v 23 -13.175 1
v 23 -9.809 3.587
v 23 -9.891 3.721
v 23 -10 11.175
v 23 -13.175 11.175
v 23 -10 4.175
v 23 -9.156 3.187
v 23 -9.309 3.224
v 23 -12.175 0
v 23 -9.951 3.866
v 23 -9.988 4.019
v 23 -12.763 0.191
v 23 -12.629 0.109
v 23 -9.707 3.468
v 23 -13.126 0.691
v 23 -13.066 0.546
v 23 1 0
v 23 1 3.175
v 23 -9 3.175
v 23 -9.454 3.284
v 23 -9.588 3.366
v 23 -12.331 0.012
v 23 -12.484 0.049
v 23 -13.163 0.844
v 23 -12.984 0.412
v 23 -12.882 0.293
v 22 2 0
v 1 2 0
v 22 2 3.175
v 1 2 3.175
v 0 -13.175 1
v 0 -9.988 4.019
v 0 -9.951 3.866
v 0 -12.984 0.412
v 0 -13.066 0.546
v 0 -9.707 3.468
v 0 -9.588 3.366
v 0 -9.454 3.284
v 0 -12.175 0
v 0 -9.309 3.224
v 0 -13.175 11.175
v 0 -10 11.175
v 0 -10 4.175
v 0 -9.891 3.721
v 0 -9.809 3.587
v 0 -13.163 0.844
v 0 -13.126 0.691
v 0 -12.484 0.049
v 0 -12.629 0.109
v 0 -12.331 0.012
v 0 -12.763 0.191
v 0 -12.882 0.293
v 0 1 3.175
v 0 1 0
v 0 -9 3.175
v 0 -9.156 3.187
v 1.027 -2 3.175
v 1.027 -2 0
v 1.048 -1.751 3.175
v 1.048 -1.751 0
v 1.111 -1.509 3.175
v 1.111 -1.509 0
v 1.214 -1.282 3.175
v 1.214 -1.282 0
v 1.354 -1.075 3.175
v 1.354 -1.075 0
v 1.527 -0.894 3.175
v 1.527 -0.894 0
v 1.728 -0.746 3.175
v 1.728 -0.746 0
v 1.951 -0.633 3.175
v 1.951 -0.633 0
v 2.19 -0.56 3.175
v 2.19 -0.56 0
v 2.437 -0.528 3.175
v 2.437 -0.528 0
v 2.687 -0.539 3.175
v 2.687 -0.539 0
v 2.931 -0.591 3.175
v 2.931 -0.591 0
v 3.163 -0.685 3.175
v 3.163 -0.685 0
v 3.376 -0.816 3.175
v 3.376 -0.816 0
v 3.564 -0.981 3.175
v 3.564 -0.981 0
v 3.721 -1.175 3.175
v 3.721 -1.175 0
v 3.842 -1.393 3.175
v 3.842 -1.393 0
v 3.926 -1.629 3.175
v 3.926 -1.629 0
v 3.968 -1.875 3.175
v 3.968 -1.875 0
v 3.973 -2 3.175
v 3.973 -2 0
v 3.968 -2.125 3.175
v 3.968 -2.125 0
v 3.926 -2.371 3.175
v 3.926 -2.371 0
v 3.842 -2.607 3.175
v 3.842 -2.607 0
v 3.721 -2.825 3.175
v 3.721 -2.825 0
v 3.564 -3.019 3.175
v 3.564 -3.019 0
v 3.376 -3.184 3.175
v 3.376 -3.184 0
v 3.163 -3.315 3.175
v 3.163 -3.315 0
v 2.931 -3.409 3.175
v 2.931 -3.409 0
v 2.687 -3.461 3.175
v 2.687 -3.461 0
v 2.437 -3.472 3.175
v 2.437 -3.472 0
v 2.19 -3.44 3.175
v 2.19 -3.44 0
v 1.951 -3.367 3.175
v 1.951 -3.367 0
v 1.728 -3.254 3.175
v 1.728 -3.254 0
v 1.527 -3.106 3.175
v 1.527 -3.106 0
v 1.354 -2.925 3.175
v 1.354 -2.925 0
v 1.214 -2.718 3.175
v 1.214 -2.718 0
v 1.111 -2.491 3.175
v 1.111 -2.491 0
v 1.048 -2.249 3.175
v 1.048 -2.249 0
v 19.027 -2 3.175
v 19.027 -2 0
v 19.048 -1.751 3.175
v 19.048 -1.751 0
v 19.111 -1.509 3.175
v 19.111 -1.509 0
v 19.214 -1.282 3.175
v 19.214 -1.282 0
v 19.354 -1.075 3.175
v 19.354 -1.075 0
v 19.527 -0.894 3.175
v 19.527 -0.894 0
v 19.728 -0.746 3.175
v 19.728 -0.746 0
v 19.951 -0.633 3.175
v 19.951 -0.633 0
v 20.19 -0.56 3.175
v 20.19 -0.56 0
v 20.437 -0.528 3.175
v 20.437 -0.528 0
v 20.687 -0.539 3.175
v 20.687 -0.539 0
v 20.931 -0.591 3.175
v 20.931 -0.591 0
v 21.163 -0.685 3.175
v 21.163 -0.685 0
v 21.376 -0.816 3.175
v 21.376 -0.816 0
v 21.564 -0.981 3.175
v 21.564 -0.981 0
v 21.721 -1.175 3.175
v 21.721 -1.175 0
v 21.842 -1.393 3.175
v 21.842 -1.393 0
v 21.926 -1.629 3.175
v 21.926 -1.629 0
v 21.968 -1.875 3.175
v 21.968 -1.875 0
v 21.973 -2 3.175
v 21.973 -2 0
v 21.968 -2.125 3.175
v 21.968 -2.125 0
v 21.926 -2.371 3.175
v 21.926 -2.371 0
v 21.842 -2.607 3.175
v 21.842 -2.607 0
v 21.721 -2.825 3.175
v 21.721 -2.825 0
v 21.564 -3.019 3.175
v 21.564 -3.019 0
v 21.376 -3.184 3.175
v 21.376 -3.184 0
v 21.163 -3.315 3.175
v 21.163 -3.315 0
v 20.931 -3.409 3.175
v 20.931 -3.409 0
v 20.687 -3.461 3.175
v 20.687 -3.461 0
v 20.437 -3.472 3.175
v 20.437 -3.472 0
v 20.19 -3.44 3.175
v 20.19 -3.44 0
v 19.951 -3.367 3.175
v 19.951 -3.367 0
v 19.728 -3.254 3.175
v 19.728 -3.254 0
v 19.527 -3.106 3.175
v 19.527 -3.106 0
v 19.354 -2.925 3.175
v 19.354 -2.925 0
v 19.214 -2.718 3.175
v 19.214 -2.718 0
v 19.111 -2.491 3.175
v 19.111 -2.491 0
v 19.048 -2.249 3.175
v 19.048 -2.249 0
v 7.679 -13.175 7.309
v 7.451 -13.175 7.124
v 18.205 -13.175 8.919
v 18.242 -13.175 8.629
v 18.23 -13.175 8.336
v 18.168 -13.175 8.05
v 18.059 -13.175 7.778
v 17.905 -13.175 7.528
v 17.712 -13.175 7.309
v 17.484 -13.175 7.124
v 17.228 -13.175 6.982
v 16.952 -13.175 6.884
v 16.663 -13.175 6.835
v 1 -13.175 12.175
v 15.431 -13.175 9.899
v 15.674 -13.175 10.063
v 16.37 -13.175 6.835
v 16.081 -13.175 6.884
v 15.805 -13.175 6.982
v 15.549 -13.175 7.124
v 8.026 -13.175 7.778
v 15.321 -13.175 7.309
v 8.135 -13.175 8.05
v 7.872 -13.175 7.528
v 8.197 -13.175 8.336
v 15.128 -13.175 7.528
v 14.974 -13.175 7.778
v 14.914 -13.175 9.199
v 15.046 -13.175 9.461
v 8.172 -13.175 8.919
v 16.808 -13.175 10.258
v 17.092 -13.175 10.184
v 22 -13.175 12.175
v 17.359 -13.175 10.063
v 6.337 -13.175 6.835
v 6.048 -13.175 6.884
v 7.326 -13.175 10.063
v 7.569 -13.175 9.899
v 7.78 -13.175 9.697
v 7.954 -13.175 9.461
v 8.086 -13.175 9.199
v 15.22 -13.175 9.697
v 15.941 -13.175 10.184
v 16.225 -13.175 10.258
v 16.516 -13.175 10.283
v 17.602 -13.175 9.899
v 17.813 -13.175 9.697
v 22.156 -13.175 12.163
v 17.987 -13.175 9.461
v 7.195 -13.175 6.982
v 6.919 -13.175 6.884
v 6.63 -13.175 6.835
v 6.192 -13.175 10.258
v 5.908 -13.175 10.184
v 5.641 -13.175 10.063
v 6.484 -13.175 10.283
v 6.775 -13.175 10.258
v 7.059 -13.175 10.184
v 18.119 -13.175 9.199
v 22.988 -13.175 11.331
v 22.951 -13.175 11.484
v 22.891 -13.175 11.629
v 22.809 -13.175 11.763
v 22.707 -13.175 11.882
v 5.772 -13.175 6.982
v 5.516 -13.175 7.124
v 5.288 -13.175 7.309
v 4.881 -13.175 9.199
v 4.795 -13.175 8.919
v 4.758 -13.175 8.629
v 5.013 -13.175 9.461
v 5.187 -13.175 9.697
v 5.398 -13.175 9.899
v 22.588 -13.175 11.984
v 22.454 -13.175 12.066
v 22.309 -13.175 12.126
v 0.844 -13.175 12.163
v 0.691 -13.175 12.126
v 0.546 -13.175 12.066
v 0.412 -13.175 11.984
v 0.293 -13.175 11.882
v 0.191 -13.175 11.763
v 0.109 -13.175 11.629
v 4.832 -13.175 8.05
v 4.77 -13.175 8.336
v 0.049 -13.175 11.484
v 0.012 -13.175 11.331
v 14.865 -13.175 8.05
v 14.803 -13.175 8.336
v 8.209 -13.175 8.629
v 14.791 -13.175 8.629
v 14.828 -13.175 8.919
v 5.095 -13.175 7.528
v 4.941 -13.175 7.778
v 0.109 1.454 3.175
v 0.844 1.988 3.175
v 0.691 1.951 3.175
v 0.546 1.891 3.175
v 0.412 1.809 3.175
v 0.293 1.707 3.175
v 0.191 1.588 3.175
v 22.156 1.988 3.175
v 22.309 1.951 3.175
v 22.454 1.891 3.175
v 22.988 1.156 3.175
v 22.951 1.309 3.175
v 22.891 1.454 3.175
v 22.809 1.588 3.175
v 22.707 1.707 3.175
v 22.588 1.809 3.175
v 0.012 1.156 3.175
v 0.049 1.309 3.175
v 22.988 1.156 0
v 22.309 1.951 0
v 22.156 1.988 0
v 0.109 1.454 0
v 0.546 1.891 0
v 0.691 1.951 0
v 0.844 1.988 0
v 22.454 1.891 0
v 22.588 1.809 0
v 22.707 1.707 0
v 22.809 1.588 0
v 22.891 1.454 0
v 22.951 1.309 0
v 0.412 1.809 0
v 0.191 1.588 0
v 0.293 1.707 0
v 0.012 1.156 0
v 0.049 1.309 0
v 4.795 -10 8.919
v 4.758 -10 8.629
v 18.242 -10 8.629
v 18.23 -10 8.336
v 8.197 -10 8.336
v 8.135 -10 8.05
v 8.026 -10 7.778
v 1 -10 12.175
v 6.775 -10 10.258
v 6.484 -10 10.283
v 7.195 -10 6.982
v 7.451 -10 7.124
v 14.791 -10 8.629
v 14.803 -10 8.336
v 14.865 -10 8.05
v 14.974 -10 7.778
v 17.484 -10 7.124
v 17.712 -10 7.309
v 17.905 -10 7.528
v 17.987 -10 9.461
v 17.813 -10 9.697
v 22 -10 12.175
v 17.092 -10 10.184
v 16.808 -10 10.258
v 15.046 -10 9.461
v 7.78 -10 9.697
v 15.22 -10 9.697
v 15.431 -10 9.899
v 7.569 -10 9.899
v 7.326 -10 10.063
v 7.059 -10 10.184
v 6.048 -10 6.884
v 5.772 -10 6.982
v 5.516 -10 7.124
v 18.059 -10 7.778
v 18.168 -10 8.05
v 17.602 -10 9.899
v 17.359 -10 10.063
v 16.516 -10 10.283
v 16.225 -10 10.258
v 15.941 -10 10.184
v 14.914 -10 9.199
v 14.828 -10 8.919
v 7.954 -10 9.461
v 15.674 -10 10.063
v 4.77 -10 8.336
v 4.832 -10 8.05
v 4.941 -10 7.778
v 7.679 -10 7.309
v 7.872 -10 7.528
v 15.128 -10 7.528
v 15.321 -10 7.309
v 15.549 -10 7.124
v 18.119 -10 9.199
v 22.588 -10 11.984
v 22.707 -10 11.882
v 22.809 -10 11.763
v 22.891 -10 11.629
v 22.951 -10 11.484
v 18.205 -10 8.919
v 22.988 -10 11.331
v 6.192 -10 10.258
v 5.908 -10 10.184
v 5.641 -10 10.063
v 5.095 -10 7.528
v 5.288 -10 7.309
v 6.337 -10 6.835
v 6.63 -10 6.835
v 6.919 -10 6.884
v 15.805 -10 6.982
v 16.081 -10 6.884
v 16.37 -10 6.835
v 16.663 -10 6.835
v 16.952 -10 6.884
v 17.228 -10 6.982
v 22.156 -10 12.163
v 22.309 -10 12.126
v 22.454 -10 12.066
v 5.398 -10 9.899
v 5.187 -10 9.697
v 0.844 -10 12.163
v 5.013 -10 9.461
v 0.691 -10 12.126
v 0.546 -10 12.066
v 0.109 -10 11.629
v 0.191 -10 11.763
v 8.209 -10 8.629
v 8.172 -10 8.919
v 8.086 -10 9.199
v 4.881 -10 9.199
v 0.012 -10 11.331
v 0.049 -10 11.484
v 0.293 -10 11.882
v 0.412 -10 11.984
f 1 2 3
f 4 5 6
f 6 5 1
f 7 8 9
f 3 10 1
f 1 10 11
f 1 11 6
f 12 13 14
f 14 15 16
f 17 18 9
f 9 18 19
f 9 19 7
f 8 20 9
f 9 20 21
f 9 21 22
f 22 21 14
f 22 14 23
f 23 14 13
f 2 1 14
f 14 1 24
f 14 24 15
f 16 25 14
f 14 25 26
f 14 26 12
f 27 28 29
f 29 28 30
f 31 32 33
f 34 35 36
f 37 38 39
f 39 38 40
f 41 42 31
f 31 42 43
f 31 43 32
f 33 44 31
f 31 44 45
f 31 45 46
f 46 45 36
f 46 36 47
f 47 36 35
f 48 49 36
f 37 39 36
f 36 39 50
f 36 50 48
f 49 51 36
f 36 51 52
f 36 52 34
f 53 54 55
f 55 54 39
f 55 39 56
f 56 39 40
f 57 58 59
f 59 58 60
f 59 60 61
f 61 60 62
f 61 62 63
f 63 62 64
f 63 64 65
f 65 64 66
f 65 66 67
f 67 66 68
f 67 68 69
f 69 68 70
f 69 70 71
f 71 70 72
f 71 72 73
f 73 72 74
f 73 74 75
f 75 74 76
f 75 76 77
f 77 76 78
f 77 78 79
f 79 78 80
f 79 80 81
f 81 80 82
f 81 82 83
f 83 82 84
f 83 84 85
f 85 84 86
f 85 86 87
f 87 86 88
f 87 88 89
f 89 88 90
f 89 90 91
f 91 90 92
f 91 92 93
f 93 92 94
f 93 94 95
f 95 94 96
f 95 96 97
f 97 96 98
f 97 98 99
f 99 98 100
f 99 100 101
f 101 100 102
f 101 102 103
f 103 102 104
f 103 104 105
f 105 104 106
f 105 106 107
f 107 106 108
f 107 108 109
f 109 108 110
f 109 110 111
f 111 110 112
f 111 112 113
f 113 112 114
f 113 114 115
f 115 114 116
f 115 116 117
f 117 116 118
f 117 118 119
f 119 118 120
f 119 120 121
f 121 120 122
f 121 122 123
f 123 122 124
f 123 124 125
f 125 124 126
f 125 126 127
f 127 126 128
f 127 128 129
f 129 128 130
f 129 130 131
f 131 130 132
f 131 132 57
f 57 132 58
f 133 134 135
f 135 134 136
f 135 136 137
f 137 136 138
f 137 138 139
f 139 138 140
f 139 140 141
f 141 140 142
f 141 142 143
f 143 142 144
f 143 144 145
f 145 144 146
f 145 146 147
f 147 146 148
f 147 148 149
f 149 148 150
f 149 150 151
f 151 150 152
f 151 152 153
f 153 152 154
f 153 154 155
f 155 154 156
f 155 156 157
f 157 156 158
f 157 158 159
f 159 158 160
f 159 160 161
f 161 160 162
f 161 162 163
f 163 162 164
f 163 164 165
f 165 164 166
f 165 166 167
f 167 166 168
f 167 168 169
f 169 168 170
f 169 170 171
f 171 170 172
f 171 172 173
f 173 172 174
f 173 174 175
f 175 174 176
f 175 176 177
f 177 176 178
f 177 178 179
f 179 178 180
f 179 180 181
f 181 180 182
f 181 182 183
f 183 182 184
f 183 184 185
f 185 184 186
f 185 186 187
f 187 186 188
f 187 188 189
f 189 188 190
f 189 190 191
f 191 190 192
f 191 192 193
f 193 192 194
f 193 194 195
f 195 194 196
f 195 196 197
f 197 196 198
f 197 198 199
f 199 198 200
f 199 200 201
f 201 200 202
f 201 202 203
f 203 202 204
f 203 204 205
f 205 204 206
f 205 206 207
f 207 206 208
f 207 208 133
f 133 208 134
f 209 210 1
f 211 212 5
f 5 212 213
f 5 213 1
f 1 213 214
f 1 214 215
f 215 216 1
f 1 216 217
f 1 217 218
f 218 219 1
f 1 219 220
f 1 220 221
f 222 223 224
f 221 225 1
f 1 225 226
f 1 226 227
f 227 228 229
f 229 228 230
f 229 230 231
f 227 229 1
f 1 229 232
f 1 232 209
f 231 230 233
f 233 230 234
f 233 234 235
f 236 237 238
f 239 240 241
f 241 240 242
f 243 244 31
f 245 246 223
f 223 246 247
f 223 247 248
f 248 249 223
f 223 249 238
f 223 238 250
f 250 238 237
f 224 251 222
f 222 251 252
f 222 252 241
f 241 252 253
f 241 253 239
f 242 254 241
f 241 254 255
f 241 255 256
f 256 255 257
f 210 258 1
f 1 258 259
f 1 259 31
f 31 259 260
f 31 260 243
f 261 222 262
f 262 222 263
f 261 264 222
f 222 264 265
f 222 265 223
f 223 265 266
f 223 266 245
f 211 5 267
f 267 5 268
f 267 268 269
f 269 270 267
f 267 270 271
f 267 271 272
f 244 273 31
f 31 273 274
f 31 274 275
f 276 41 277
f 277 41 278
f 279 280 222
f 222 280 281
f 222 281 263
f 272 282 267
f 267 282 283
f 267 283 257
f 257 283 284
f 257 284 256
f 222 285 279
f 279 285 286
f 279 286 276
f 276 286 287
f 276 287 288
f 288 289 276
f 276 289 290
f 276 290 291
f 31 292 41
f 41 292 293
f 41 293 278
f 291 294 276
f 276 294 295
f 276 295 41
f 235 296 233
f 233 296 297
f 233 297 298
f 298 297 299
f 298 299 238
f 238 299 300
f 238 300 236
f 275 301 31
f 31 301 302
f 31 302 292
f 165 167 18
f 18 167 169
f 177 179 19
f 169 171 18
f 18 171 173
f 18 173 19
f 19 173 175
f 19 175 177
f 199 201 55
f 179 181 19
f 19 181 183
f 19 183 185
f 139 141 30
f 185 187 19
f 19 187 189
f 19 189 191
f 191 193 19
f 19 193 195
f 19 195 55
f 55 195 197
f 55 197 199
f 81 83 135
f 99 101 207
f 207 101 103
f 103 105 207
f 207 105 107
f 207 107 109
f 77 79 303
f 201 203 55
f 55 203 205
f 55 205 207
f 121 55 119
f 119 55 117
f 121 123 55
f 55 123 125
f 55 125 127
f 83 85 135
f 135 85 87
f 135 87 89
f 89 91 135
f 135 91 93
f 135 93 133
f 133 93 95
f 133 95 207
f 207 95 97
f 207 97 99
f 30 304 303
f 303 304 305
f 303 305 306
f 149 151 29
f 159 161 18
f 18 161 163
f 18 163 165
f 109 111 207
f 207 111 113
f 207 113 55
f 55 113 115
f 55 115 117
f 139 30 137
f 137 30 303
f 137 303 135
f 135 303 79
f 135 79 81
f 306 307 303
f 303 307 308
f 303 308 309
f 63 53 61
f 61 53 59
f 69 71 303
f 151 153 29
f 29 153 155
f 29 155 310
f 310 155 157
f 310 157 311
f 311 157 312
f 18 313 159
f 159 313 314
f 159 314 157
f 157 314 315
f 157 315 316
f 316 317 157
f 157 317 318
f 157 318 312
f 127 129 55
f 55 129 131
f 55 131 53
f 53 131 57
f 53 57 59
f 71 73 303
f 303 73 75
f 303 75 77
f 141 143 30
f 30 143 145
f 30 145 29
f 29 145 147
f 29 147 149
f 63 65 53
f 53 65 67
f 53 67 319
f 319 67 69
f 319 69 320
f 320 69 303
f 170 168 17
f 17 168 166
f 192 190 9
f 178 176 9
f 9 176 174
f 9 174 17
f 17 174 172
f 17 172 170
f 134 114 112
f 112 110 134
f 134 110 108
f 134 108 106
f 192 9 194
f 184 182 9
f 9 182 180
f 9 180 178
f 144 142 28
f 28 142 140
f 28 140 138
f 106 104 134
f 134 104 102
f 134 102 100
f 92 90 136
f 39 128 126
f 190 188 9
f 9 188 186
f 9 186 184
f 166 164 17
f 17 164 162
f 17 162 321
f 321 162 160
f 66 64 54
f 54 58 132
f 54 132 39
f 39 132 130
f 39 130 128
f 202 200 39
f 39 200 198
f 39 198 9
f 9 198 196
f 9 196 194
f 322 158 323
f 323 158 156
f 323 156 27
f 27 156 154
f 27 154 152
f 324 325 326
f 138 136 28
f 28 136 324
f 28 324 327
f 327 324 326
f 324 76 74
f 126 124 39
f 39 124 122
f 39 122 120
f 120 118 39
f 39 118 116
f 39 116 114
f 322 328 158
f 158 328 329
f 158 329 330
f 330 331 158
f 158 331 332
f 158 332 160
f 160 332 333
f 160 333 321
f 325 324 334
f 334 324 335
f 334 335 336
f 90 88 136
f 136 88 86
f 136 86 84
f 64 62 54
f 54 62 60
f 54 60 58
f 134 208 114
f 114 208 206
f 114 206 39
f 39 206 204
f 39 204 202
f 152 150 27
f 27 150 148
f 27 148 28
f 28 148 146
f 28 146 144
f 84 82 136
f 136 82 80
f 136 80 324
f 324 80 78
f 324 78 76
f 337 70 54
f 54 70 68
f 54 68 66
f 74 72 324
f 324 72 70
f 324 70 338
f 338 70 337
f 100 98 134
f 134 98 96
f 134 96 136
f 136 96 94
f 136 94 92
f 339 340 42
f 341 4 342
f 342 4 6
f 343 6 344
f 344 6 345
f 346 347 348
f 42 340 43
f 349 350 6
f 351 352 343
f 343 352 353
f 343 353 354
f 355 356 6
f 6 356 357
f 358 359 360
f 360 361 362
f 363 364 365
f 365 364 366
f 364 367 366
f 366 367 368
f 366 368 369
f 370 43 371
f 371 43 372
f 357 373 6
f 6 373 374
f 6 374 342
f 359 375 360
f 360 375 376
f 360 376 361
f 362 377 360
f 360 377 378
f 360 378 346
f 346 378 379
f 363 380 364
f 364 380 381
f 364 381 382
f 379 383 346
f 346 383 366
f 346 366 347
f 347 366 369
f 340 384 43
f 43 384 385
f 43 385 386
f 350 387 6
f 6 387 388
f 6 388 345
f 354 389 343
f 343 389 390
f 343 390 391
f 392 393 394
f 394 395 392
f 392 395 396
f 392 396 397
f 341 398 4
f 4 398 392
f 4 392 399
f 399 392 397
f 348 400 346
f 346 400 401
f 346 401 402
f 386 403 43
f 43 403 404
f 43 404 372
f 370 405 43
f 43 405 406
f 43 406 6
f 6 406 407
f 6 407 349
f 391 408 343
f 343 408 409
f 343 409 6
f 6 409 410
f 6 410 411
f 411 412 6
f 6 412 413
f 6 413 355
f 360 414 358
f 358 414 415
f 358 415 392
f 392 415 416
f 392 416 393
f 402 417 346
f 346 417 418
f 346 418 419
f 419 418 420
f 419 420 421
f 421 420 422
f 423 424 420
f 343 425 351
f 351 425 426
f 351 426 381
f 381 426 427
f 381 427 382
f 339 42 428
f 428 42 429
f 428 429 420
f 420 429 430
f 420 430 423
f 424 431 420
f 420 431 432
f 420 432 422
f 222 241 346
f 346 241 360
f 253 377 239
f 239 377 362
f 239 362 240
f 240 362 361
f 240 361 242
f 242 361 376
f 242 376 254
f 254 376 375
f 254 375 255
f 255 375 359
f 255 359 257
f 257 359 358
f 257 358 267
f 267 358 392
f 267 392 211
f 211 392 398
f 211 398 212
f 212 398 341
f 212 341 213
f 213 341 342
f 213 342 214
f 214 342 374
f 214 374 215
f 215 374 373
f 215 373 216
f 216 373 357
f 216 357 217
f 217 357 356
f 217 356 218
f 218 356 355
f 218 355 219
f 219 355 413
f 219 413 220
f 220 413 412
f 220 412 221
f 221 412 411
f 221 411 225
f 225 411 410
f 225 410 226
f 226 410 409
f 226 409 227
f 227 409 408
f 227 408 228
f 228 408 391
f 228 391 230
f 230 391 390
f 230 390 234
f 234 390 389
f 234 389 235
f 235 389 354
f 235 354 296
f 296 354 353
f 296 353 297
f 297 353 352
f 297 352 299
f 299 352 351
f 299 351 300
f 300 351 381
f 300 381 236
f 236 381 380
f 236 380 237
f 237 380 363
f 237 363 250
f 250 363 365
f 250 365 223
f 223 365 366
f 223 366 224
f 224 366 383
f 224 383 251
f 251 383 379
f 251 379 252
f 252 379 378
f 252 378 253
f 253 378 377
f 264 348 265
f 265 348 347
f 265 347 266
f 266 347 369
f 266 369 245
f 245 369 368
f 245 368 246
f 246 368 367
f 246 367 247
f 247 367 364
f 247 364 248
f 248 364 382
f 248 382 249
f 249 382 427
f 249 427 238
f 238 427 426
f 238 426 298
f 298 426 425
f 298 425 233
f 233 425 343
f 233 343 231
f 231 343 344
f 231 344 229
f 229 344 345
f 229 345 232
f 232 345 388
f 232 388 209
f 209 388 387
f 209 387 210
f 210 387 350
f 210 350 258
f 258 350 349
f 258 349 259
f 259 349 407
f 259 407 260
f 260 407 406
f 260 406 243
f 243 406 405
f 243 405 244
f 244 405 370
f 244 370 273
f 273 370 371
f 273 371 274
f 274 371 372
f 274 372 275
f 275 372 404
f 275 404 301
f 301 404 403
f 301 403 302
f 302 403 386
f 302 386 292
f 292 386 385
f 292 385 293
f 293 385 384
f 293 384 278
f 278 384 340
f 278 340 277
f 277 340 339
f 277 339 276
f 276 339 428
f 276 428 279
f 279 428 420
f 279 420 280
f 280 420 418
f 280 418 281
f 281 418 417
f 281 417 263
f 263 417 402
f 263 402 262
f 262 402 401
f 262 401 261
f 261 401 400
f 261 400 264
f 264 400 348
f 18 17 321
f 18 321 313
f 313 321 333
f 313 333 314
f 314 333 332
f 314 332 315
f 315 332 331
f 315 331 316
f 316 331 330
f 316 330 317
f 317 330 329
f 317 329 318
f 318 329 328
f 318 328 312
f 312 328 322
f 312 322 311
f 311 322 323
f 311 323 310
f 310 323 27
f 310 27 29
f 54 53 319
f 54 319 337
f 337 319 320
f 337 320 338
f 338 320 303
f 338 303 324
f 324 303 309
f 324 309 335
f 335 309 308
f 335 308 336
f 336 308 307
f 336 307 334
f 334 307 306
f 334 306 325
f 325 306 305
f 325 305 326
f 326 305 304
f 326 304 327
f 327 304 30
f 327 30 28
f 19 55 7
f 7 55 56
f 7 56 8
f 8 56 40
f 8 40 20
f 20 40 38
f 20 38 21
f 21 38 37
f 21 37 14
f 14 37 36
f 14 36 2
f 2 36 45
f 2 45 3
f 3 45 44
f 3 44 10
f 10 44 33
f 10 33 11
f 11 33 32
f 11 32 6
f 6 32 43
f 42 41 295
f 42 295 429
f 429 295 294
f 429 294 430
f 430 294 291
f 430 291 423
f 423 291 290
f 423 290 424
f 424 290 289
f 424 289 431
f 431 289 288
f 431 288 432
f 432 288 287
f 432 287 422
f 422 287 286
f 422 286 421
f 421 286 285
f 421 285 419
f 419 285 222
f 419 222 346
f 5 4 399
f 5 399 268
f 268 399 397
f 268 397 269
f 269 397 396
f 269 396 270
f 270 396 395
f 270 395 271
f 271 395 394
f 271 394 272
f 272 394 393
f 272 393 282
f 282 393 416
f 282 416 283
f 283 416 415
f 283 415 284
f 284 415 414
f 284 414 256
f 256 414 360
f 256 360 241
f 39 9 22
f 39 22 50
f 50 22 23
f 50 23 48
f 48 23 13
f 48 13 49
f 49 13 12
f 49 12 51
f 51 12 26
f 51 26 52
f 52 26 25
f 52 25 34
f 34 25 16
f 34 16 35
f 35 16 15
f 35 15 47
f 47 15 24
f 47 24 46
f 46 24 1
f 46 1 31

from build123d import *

# Parameters (mm, degrees)
SKETCH1_W             = 23
SKETCH1_H             = 10
SKETCH1_R             = 1.4732
SKETCH1_H_2           = 3.175
SKETCH1_H_3           = 2
BOSS_EXTRUDE1_DEPTH   = 3.175
BOSS_EXTRUDE2_START   = 3.175
SKETCH1_3_W           = 23
SKETCH1_3_H           = 3.175
BOSS_EXTRUDE2_DEPTH   = 9
F_8_32_TAPPED_HOLE1_D = 3.4544
FILLET1_R             = 1


with BuildPart() as part:
    # Sketch1 → Boss-Extrude1 (new body)
    # profile 1 of 3: a face of its own
    with BuildSketch(Plane.XY):
        with Locations((11.5, -5)):
            Rectangle(SKETCH1_W, SKETCH1_H)
        with Locations((2.5, -2)):
            Circle(SKETCH1_R, mode=Mode.SUBTRACT)
        with Locations((20.5, -2)):
            Circle(SKETCH1_R, mode=Mode.SUBTRACT)
    # profile 2 of 3: a face of its own
    with BuildSketch(Plane.XY):
        with Locations((11.5, -11.5875)):
            Rectangle(SKETCH1_W, SKETCH1_H_2)
    # profile 3 of 3: a face of its own
    with BuildSketch(Plane.XY):
        with Locations((11.5, 1)):
            Rectangle(SKETCH1_W, SKETCH1_H_3)
    extrude(amount=BOSS_EXTRUDE1_DEPTH)

    # Sketch1<3> → Boss-Extrude2 (add)
    with BuildSketch(Plane.XY.offset(BOSS_EXTRUDE2_START)):
        with Locations((11.5, -11.5875)):
            Rectangle(SKETCH1_3_W, SKETCH1_3_H)
    extrude(amount=BOSS_EXTRUDE2_DEPTH)

    # #8-32 Tapped Hole1 (through all)
    with Locations(Plane(origin=(6.4835, -10, 8.5555), x_dir=(1, 0, 0), z_dir=(0, 1, 0))):
        with Locations((0, 0), (10.033, 0)):
            Hole(F_8_32_TAPPED_HOLE1_D / 2)

    # Fillet1
    fillet1_edges = [part.edges().sort_by_distance(p)[0] for p in [
        (0, 2, 1.5875),
        (23, 2, 1.5875),
        (0, -11.5875, 12.175),
        (11.5, -10, 3.175),
        (23, -11.5875, 12.175),
        (11.5, -13.175, 0),
    ]]
    fillet(fillet1_edges, radius=FILLET1_R)


solid = part.part
